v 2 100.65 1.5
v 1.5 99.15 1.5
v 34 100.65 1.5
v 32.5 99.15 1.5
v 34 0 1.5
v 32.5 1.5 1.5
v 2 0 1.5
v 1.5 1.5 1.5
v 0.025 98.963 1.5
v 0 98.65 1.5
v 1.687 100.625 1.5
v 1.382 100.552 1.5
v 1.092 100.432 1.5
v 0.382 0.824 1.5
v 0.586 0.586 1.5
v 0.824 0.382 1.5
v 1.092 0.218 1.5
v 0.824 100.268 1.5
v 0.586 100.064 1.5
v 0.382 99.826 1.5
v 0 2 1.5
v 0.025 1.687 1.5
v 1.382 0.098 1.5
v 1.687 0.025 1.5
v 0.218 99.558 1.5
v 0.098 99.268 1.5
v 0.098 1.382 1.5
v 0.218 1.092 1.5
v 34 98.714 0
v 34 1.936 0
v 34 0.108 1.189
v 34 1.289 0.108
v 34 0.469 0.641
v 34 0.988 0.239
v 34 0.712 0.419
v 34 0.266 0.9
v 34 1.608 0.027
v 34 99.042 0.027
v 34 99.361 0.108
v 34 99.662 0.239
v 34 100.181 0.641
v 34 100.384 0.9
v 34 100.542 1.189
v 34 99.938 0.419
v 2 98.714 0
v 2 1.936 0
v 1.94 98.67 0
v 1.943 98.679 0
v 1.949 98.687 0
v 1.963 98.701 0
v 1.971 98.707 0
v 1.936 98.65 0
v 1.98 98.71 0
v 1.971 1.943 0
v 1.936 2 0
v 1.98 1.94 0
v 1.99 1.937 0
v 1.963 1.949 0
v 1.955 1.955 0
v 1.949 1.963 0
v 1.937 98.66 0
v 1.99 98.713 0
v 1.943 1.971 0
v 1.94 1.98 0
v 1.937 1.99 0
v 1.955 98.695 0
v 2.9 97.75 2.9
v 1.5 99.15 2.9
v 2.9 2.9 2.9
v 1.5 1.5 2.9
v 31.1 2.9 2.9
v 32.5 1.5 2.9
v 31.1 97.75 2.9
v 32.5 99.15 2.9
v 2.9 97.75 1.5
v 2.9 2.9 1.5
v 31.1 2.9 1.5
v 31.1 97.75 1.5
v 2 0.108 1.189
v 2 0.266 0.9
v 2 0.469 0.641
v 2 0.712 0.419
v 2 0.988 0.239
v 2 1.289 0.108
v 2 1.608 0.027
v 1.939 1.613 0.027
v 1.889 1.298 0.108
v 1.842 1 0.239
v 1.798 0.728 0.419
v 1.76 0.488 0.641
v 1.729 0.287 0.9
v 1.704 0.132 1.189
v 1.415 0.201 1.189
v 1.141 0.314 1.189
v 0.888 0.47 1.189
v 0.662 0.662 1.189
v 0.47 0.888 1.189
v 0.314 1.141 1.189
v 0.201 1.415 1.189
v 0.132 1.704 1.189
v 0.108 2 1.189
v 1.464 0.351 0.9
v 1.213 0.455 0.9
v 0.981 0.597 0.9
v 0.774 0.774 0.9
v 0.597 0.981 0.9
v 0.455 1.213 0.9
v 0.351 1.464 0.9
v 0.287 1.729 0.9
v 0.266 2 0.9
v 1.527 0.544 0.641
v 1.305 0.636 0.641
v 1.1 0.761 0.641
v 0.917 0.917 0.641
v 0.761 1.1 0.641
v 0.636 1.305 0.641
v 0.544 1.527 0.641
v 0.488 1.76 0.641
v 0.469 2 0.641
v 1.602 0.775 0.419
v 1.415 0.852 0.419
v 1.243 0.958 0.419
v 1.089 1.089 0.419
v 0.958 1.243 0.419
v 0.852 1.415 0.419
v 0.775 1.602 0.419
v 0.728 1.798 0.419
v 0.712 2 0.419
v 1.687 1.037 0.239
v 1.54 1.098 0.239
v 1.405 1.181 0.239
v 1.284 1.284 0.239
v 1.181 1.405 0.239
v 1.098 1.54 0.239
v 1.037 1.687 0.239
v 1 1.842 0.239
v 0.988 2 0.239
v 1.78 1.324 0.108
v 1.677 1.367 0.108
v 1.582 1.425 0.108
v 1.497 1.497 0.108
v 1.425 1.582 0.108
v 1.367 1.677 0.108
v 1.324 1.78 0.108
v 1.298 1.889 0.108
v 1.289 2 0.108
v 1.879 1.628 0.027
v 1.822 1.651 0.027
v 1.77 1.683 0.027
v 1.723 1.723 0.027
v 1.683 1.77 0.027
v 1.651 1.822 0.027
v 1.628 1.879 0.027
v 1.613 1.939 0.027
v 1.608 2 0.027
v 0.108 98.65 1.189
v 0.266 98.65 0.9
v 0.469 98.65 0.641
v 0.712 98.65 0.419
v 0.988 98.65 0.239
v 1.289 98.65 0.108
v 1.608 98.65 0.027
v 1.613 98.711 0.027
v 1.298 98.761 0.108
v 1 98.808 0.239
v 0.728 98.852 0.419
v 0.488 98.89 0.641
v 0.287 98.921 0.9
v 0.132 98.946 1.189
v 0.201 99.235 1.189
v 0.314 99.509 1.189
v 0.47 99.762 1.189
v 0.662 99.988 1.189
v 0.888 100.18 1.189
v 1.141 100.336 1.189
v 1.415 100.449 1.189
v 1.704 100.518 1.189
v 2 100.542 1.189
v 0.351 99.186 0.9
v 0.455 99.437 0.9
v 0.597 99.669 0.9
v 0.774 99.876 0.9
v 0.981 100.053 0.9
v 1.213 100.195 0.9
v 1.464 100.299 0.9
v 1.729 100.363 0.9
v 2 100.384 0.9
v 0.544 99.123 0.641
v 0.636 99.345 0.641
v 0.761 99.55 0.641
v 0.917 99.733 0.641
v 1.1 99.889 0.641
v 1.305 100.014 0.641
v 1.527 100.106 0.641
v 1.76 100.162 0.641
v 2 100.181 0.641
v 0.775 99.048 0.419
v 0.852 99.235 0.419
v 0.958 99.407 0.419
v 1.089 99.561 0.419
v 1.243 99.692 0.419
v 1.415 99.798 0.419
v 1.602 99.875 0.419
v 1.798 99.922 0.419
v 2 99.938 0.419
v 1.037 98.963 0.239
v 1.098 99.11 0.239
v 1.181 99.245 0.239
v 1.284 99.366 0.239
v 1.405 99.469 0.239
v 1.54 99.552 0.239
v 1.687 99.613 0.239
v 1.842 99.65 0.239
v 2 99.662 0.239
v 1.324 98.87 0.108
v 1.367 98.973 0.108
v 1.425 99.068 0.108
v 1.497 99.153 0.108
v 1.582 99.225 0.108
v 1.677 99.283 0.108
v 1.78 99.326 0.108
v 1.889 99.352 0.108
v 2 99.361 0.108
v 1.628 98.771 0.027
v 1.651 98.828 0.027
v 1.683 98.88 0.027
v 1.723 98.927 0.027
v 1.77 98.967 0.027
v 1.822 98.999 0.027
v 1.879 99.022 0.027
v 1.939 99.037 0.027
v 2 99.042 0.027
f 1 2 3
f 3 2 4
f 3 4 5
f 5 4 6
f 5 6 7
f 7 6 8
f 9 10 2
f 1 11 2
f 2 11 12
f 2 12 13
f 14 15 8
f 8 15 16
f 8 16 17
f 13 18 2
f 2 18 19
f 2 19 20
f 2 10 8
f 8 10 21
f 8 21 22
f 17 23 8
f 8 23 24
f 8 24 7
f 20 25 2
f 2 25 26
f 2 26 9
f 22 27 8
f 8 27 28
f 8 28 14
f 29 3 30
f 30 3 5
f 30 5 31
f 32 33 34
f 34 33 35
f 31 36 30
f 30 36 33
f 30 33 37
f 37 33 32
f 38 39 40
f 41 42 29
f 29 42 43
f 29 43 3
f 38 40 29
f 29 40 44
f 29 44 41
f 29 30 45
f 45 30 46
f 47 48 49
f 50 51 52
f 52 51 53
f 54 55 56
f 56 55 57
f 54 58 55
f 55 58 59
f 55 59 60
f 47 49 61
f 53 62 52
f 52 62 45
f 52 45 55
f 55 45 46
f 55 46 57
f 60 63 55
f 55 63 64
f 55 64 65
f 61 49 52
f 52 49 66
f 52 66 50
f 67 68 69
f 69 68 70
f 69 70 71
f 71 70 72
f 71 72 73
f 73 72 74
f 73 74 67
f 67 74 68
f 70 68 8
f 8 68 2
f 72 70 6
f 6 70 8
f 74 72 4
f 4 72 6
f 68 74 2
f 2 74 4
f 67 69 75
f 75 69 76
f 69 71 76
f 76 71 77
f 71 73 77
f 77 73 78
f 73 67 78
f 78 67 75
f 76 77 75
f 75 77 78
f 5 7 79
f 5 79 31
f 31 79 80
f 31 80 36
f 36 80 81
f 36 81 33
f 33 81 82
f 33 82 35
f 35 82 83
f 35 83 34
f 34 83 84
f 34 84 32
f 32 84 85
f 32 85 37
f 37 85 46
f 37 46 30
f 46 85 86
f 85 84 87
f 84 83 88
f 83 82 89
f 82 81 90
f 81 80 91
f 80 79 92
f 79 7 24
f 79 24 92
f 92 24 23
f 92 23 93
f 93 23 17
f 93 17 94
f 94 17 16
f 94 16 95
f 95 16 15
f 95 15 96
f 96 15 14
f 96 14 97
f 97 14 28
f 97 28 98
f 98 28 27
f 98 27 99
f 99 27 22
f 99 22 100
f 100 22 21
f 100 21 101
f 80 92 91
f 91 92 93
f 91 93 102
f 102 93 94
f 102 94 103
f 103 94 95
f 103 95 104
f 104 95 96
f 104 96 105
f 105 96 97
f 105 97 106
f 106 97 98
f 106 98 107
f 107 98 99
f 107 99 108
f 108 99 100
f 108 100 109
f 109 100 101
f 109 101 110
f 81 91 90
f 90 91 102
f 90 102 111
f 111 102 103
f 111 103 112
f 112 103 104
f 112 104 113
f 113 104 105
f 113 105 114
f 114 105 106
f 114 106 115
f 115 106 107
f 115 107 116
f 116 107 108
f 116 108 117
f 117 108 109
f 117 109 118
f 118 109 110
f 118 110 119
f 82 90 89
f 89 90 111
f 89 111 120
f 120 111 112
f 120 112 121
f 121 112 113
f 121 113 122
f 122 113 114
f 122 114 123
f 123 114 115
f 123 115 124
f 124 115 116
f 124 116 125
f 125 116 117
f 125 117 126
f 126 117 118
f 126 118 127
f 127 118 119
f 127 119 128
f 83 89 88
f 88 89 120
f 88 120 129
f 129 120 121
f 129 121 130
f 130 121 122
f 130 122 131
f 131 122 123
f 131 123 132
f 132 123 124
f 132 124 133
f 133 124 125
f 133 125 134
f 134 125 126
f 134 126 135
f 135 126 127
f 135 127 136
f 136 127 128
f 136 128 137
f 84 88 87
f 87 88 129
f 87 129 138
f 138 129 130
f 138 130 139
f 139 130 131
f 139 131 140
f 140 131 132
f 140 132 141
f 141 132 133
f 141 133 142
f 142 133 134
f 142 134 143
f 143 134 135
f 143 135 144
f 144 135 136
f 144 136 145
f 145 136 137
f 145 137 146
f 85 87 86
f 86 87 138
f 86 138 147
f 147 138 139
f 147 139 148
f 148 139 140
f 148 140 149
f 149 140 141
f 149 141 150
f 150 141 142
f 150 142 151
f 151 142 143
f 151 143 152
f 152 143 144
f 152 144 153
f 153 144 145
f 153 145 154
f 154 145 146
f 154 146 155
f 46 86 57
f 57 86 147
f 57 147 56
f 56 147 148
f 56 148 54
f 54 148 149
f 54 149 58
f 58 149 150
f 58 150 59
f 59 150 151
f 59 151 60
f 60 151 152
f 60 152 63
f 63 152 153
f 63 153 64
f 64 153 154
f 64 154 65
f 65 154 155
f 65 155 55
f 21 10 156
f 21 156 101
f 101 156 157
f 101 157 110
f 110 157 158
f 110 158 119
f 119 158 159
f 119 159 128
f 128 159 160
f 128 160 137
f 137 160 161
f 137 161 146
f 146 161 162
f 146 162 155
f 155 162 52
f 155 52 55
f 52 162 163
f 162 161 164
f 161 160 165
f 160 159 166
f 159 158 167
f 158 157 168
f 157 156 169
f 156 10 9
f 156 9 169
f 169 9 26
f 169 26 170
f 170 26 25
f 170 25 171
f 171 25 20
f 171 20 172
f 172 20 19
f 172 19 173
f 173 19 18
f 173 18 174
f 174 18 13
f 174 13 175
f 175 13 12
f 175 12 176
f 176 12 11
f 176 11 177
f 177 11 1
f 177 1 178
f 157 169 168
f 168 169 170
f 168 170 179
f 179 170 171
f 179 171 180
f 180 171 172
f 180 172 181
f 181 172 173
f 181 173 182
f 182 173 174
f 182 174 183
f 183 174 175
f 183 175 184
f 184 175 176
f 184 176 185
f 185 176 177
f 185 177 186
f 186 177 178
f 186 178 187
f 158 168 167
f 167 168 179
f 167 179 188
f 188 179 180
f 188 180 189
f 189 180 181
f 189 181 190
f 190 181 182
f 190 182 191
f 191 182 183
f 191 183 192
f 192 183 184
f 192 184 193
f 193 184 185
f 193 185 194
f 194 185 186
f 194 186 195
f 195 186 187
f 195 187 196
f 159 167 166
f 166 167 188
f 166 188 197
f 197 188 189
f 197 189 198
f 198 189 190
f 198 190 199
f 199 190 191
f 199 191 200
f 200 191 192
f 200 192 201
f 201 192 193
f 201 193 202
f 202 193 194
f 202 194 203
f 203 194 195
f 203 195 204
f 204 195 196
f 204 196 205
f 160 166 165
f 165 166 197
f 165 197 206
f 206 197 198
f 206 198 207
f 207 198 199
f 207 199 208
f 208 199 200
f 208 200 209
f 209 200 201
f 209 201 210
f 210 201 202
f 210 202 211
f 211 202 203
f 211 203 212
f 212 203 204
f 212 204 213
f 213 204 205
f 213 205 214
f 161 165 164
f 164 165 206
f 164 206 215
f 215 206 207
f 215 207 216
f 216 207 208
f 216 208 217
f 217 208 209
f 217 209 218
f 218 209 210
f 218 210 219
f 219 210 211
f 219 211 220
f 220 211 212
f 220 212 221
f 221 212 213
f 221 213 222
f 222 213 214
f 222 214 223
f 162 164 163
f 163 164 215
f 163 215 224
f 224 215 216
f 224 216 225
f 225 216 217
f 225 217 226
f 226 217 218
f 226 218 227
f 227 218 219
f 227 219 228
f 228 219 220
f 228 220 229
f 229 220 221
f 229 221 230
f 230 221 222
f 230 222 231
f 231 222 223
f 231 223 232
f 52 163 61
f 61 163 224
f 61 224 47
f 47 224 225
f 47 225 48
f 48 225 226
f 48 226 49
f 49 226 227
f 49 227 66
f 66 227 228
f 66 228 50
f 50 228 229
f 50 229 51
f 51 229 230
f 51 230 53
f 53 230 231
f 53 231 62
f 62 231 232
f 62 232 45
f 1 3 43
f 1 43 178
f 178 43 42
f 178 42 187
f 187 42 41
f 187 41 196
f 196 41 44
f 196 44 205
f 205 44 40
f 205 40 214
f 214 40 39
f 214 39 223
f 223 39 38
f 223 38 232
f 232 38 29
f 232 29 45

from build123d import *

# Parameters (mm, degrees)
ESQUISSE1_W        = 34
ESQUISSE1_H        = 100.65
BOSS_EXTRU_1_DEPTH = 1.5
ESQUISSE2_W        = 31
ESQUISSE2_H        = 97.65
ESQUISSE2_W_2      = 28.2
ESQUISSE2_H_2      = 94.85
BOSS_EXTRU_2_DEPTH = 1.4
CONG_6_R           = 2
CONG_8_R           = 2
CONG_9_R           = 2


with BuildPart() as part:
    # Esquisse1 → Boss.-Extru.1 (new body)
    with BuildSketch(Plane.XY):
        with Locations((17, 50.325)):
            Rectangle(ESQUISSE1_W, ESQUISSE1_H)
    extrude(amount=BOSS_EXTRU_1_DEPTH)

    # Esquisse2 → Boss.-Extru.2 (add)
    with BuildSketch(Plane.XY.offset(1.5)):
        with Locations((17, 50.325)):
            Rectangle(ESQUISSE2_W, ESQUISSE2_H)
        with Locations((17, 50.325)):
            Rectangle(ESQUISSE2_W_2, ESQUISSE2_H_2, mode=Mode.SUBTRACT)
    extrude(amount=BOSS_EXTRU_2_DEPTH)

    # Congé6
    cong_6_edges = [part.edges().sort_by_distance(p)[0] for p in [
        (0, 0, 0.75),
    ]]
    fillet(cong_6_edges, radius=CONG_6_R)

    # Congé8
    cong_8_edges = [part.edges().sort_by_distance(p)[0] for p in [
        (0, 100.65, 0.75),
    ]]
    fillet(cong_8_edges, radius=CONG_8_R)

    # Congé9
    # the kernel refuses this fillet: 2 mm, written as the material it takes off along each edge
    with BuildSketch(Plane(origin=(38.841229183, 100.65, 0), x_dir=(0, -1, 0), z_dir=(-1, 0, 0)), Plane(origin=(2, 0, 0), x_dir=(0, 1, 0), z_dir=(1, 0, 0))) as cong_9_piece_1:
        with BuildLine():
            CenterArc((1.936491673, 2), CONG_9_R, 194.477512186, 75.522487814)
            Line((0, 1.5), (-0.038729833, 1.49))
            ThreePointArc((-0.038729833, 1.49), (-0.04, 0.75), (-0.04, 0))
            Line((-0.04, 0), (0, -0.04))
            Line((0, -0.04), (1.936491673, -0.04))
            Line((1.936491673, -0.04), (1.936491673, 0))
        make_face()
    extrude(amount=36.841229183, mode=Mode.SUBTRACT)
    with BuildSketch(Plane(origin=(2, 98.65, 0), x_dir=(-1, 0, 0), z_dir=(0, -1, 0))) as cong_9_piece_2:
        with BuildLine():
            CenterArc((0.063508327, -2), CONG_9_R, 14.477512186, 75.522487814)
            Line((2, -1.5), (2.038729833, -1.49))
            ThreePointArc((2.038729833, -1.49), (2.04, -0.75), (2.04, 0))
            Line((2.04, 0), (2, 0.04))
            Line((2, 0.04), (0.063508327, 0.04))
            Line((0.063508327, 0.04), (0.063508327, 0))
        make_face()
    revolve(axis=Axis((2, 98.65, 0), (0, 0, -1)), revolution_arc=90, mode=Mode.SUBTRACT)
    with BuildSketch(Plane(origin=(0, 98.65, 0), x_dir=(1, 0, 0), z_dir=(0, -1, 0))) as cong_9_piece_3:
        with BuildLine():
            CenterArc((1.936491673, 2), CONG_9_R, 194.477512186, 75.522487814)
            Line((0, 1.5), (-0.038729833, 1.49))
            ThreePointArc((-0.038729833, 1.49), (-0.04, 0.75), (-0.04, 0))
            Line((-0.04, 0), (0, -0.04))
            Line((0, -0.04), (1.936491673, -0.04))
            Line((1.936491673, -0.04), (1.936491673, 0))
        make_face()
    extrude(amount=96.65, mode=Mode.SUBTRACT)
    with BuildSketch(Plane(origin=(2, 2, 0), x_dir=(0, -1, 0), z_dir=(1, 0, 0))) as cong_9_piece_4:
        with BuildLine():
            CenterArc((0.063508327, -2), CONG_9_R, 14.477512186, 75.522487814)
            Line((2, -1.5), (2.038729833, -1.49))
            ThreePointArc((2.038729833, -1.49), (2.04, -0.75), (2.04, 0))
            Line((2.04, 0), (2, 0.04))
            Line((2, 0.04), (0.063508327, 0.04))
            Line((0.063508327, 0.04), (0.063508327, 0))
        make_face()
    revolve(axis=Axis((2, 2, 0), (0, 0, -1)), revolution_arc=90, mode=Mode.SUBTRACT)


solid = part.part
